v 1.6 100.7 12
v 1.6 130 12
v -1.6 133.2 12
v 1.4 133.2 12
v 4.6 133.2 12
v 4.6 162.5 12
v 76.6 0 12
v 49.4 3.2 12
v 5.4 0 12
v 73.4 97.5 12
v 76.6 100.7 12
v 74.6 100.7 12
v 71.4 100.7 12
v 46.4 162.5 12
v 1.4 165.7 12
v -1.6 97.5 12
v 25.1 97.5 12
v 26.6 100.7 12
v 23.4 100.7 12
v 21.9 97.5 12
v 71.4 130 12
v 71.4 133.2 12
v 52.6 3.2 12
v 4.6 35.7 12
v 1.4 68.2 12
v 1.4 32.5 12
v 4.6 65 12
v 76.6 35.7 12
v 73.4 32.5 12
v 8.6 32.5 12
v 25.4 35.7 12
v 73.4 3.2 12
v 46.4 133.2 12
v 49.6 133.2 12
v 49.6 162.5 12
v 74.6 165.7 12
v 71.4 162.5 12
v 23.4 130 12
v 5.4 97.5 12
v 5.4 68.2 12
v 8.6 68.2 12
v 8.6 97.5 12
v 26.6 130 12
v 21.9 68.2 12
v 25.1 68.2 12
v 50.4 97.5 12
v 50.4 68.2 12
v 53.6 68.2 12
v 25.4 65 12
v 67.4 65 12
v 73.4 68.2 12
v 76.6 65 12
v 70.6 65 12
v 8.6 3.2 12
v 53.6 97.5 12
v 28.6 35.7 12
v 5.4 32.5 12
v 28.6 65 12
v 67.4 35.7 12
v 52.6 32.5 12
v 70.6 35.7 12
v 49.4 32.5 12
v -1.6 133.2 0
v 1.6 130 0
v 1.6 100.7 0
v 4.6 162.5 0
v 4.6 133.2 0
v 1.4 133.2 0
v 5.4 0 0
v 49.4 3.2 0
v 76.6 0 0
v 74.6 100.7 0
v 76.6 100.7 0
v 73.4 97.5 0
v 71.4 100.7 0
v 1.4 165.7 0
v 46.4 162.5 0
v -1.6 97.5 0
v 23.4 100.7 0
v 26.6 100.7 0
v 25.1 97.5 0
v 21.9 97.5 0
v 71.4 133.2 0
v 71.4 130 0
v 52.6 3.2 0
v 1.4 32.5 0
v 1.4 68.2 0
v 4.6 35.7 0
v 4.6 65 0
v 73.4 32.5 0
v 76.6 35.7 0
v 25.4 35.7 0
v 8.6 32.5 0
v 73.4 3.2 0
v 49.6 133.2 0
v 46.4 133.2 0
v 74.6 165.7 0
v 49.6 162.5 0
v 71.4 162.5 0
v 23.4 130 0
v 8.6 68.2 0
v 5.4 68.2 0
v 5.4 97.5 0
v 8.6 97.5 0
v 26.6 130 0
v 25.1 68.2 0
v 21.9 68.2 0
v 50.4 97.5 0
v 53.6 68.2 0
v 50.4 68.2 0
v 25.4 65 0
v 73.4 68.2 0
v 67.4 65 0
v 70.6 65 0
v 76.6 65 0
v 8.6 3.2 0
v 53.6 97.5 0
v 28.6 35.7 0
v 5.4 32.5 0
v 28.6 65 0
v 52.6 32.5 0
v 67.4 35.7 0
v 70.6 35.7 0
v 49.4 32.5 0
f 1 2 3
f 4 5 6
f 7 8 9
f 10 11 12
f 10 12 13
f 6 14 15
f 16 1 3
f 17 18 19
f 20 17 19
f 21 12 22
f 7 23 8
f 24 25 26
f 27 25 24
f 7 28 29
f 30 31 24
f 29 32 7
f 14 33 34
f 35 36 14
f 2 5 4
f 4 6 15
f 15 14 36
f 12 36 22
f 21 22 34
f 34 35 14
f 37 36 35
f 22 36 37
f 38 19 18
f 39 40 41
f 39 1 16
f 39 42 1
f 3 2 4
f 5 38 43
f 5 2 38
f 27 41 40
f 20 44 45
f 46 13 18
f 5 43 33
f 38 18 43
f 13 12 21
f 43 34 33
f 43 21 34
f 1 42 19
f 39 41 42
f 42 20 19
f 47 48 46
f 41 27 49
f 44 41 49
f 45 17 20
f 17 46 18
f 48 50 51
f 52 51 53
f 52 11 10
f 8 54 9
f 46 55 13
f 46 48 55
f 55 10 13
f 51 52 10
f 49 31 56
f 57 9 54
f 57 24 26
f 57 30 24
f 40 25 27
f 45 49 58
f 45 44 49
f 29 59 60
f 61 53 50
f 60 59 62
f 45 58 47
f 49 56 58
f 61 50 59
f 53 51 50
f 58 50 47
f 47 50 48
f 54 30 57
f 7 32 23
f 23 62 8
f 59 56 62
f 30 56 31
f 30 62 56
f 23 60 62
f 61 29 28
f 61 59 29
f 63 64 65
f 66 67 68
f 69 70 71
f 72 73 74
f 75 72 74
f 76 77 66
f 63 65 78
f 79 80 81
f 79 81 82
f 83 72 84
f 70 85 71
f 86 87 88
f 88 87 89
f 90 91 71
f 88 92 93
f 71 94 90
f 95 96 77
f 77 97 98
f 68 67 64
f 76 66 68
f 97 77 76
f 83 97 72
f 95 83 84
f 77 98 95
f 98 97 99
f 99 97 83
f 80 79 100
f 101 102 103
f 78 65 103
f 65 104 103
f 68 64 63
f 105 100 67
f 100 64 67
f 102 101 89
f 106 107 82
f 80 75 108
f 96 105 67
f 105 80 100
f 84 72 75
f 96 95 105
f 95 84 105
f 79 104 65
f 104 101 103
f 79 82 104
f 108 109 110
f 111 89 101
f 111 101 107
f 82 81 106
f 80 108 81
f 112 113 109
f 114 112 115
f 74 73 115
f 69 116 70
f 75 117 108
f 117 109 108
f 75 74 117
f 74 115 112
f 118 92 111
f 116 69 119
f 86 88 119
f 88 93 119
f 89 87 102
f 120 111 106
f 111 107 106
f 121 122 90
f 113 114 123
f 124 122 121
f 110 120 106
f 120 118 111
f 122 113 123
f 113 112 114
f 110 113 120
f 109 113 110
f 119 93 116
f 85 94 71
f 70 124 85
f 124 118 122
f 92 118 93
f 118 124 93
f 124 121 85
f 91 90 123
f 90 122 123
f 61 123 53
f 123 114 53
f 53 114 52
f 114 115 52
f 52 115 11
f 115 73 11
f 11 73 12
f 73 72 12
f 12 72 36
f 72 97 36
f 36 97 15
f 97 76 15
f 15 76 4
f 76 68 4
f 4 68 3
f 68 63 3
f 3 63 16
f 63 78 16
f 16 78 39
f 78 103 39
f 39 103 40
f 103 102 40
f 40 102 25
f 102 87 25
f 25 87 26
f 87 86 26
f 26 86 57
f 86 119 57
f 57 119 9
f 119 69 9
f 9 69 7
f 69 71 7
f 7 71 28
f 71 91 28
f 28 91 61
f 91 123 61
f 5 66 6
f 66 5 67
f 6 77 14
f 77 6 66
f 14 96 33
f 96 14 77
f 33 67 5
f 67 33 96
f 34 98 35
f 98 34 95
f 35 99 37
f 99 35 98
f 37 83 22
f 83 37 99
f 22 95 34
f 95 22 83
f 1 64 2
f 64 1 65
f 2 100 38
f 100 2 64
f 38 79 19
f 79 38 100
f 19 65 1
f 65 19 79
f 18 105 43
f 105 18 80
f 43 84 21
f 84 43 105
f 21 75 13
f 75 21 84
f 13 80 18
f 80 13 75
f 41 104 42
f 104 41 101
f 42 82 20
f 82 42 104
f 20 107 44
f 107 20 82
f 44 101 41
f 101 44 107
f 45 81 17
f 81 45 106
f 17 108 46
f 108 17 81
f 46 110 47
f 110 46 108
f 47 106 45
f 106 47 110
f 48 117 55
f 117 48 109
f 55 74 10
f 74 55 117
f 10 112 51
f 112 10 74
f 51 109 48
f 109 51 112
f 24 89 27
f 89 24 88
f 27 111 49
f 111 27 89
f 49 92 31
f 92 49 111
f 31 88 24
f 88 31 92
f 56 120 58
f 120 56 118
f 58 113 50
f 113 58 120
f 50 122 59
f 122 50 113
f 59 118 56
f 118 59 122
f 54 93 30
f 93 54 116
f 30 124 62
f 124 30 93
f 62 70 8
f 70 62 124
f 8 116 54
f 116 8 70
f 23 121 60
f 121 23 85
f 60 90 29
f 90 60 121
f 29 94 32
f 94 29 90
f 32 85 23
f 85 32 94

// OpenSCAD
// Right_Display_Shelf.stl  -  Store Versile room frame (Rev C)
// Quantity: 1   Filament: Cream (e.g. PLA Matte Ivory White; or the panel colour)
// Print: layer 0.2 mm, infill 15%, 3 walls, brim 0 mm, NO supports
// Orientation: back  (lying on its back, front face up)
// Notes: Lying on its back: every board is a vertical wall, no supports, no bridges.
// The library draws parts with their front toward +Y; mirror([0,1,0]) makes the real
// part face the viewer correctly (see build.py). Edit dimensions in versile_parts.scad.
use <../versile_parts.scad>

rotate([-90, 0, 0]) mirror([0, 1, 0]) display_shelf(rows=[[7, 75, [51]], [3, 69, [27]], [7, 75, [23.5, 52]], [0, 73, [25]], [3, 73, [48]]], b=3.2);
